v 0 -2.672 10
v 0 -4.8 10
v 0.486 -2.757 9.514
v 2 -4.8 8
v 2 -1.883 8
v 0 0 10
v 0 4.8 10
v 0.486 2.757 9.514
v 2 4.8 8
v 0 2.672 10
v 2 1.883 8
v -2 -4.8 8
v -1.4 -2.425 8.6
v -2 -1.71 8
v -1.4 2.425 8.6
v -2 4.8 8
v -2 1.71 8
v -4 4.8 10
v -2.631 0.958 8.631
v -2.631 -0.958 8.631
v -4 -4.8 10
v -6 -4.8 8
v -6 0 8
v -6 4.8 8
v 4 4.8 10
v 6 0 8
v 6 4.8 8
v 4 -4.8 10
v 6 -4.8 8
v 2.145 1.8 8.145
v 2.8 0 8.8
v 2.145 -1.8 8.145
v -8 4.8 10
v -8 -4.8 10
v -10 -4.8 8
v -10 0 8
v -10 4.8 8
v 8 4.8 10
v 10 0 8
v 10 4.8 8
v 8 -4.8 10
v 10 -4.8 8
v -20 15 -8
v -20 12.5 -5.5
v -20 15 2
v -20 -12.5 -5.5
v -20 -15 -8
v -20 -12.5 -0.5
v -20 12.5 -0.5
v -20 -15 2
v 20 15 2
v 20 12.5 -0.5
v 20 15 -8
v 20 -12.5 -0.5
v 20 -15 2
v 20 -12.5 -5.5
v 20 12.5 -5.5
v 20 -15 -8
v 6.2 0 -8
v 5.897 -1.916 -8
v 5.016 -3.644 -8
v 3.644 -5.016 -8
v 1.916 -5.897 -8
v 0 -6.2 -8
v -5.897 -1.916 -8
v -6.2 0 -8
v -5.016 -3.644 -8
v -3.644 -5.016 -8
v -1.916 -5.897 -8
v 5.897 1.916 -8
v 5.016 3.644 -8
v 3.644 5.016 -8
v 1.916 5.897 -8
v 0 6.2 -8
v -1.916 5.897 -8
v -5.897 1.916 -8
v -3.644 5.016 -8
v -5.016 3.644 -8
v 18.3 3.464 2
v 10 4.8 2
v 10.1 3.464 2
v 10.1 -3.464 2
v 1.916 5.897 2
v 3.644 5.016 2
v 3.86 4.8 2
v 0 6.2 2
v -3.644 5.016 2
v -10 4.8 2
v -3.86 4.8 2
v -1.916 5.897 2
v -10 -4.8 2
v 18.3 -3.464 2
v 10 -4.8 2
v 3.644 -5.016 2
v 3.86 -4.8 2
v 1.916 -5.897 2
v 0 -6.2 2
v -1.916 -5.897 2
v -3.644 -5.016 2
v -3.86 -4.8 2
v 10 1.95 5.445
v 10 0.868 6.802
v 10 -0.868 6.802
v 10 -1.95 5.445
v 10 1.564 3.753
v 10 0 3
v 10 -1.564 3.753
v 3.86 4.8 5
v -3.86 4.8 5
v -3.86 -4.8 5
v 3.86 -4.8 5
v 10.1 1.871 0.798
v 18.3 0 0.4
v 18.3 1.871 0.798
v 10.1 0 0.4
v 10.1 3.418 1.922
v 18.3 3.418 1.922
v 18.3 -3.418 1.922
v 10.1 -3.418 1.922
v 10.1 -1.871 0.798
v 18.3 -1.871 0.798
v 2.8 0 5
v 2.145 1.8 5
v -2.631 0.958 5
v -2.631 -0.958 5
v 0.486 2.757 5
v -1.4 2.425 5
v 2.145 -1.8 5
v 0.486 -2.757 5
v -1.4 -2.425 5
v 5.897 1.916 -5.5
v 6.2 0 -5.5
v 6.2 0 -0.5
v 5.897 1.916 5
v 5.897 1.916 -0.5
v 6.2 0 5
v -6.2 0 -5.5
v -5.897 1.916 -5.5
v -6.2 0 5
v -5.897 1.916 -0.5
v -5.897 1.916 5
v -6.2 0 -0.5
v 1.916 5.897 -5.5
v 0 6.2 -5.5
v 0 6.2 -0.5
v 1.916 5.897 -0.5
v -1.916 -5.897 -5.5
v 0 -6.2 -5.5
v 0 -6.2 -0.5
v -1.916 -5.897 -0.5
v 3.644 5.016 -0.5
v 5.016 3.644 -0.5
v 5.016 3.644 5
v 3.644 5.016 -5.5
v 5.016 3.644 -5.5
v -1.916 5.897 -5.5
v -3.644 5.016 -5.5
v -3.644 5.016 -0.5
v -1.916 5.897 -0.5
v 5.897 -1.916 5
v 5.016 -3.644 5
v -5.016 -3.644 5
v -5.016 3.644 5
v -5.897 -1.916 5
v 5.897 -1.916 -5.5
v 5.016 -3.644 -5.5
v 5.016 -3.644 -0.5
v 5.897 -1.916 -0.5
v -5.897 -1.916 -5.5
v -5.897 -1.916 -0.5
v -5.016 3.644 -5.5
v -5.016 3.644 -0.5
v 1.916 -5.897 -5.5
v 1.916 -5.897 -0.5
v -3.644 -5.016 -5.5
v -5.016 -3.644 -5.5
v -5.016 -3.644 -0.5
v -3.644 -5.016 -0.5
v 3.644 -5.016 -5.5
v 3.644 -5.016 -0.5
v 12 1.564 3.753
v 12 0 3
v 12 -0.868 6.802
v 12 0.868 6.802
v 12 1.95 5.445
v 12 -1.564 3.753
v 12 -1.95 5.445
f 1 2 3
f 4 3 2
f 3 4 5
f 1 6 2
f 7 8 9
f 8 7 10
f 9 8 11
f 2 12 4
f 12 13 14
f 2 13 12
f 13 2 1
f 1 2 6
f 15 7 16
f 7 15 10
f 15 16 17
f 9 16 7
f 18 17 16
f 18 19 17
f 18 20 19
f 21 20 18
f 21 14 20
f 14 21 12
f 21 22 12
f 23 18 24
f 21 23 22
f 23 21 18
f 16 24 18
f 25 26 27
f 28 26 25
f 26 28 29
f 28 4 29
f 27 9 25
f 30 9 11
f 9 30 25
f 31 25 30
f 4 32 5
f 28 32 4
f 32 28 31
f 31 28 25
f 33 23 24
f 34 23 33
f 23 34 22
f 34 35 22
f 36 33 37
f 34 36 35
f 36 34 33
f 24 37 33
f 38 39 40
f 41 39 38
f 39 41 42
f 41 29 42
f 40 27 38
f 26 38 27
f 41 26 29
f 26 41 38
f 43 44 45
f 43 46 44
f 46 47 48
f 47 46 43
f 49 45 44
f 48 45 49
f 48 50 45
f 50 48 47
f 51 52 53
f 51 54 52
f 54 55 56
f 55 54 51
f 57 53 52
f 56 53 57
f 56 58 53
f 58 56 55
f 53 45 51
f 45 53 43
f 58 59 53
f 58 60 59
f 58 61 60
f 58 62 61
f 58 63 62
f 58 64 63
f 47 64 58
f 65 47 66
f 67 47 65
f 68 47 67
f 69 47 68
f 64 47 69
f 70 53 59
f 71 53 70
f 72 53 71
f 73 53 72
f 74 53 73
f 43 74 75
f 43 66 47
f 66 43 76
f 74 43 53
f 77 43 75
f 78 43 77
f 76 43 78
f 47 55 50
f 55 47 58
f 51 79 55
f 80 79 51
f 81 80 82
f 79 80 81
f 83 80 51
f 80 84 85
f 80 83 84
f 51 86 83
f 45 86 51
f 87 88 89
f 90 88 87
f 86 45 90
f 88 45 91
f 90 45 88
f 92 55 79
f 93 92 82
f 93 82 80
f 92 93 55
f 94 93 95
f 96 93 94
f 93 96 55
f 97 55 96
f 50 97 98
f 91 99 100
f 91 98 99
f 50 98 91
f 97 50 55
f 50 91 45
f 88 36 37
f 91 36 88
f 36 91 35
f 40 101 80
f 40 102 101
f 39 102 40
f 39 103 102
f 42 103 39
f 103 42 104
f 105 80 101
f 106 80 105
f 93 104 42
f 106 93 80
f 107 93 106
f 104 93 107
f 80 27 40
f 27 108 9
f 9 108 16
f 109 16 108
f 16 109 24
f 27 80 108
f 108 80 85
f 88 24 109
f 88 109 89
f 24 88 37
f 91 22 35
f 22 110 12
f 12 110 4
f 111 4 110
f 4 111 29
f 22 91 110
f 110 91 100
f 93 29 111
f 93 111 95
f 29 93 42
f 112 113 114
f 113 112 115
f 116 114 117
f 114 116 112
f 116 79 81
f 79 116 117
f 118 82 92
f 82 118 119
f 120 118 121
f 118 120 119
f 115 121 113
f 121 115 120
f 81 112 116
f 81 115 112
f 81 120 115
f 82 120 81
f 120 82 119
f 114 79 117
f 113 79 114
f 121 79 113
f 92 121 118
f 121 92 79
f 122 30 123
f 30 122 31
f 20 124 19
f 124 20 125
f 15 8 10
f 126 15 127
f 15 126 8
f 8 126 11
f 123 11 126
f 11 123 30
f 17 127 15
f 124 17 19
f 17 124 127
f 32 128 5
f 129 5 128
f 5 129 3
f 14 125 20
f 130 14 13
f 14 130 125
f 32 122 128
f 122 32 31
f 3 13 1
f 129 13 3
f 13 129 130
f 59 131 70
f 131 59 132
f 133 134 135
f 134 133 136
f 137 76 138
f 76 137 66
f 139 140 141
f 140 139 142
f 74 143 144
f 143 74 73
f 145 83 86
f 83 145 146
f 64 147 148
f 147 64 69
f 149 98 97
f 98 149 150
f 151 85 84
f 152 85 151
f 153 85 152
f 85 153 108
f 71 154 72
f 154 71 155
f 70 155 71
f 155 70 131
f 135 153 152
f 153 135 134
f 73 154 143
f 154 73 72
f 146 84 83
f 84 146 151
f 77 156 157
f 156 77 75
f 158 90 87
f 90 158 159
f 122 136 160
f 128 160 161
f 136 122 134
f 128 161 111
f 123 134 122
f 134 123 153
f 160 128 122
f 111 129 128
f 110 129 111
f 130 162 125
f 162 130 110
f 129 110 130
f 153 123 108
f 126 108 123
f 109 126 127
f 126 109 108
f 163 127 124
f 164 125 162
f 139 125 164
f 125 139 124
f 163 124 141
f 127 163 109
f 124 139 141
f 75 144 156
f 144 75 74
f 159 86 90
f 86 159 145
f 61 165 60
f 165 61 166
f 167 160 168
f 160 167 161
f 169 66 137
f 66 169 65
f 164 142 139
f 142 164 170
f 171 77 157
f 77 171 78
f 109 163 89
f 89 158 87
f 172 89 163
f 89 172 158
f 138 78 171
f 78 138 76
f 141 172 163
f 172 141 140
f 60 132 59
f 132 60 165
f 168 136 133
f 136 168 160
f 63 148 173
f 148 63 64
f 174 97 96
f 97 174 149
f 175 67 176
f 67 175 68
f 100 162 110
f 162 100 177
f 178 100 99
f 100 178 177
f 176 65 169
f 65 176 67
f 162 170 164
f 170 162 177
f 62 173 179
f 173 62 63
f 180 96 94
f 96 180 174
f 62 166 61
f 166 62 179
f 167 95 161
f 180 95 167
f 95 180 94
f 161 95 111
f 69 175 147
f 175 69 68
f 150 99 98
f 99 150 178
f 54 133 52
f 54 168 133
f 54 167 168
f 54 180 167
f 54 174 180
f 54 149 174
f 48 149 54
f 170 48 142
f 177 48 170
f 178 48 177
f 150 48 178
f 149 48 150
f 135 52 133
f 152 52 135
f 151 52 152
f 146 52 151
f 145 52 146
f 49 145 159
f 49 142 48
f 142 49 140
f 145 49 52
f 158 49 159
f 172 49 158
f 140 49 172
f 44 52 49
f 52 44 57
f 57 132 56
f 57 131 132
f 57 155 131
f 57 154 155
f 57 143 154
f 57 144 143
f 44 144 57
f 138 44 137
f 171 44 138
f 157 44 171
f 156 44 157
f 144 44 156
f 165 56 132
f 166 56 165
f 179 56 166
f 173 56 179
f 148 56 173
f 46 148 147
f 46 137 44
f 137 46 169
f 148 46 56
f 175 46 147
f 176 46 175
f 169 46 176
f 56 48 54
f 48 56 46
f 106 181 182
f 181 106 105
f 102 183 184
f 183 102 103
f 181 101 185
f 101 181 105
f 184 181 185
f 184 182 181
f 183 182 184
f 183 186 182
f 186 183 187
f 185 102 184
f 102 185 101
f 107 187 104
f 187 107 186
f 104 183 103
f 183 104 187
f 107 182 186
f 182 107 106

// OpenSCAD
union () {
  difference () {
    union () {
      cube ([40, 30, 16], center=true);
      translate ([0, 0, 8]) {
        rotate (a=90.0, v=[1, 0, 0]) {
          union () {
            rotate (a=45.0, v=[0, 0, 1]) {
              cube ([2.8284271247461903, 2.8284271247461903, 9.6], center=true);
            }
            translate ([-4, 0, 0]) {
              rotate (a=45.0, v=[0, 0, 1]) {
                cube ([2.8284271247461903, 2.8284271247461903, 9.6], center=true);
              }
            }
            translate ([4, 0, 0]) {
              rotate (a=45.0, v=[0, 0, 1]) {
                cube ([2.8284271247461903, 2.8284271247461903, 9.6], center=true);
              }
            }
            translate ([-8, 0, 0]) {
              rotate (a=45.0, v=[0, 0, 1]) {
                cube ([2.8284271247461903, 2.8284271247461903, 9.6], center=true);
              }
            }
            translate ([8, 0, 0]) {
              rotate (a=45.0, v=[0, 0, 1]) {
                cube ([2.8284271247461903, 2.8284271247461903, 9.6], center=true);
              }
            }
          }
        }
      }
    }
    translate ([0, 0, 5]) {
      difference () {
        cube ([40, 30, 6], center=true);
        cube ([20, 9.6, 6], center=true);
      }
    }
    translate ([14.2, 0, 5]) {
      rotate (a=90.0, v=[0, 1, 0]) {
        cylinder (h=8.2, r=4.6, center=true);
      }
    }
    cylinder (h=20, r=2.8, center=true);
    translate ([0, 0, -1.5]) {
      cylinder (h=13, r=6.2, center=true);
    }
    translate ([0, 0, -3]) {
      cube ([40, 25, 5], center=true);
    }
  }
  translate ([11, 0, 5]) {
    rotate (a=90.0, v=[0, 1, 0]) {
      cylinder (h=2, r=2, center=true);
    }
  }
}
